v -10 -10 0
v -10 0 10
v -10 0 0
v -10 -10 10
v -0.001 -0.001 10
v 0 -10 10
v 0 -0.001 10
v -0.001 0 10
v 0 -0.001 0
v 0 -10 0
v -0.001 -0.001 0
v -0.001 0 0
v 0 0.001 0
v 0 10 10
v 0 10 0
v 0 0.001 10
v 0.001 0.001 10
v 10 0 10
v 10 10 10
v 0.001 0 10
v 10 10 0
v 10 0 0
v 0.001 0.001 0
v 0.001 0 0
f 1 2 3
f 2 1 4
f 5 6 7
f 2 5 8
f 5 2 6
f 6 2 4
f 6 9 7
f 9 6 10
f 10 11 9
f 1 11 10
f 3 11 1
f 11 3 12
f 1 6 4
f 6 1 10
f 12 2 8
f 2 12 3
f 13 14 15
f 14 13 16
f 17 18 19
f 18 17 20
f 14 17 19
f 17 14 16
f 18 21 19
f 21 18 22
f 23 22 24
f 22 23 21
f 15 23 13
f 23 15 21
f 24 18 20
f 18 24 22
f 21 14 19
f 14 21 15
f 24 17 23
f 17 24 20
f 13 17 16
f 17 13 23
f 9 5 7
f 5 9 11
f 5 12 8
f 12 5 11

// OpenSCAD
//-------------------------------------------------------------------------------------------
// CubeBicolorRed
//-------------------------------------------------------------------------------------------
$fn=10;

translate([-5, -5, 5]) 
difference(){
union() {
  color("White") translate([0, 0, 0]) cube([10,10,10], center = true);
  // color("red") translate([10, 0, 0]) cube([10,10,10], center = true);
  // color("red") translate([0, 10, 0]) cube([10,10,10], center = true);
  color("White") translate([10, 10, 0]) cube([10,10,10], center = true);
}
translate([5, 5, 0]) cylinder(r=0.001,h=20, center = true);
}
